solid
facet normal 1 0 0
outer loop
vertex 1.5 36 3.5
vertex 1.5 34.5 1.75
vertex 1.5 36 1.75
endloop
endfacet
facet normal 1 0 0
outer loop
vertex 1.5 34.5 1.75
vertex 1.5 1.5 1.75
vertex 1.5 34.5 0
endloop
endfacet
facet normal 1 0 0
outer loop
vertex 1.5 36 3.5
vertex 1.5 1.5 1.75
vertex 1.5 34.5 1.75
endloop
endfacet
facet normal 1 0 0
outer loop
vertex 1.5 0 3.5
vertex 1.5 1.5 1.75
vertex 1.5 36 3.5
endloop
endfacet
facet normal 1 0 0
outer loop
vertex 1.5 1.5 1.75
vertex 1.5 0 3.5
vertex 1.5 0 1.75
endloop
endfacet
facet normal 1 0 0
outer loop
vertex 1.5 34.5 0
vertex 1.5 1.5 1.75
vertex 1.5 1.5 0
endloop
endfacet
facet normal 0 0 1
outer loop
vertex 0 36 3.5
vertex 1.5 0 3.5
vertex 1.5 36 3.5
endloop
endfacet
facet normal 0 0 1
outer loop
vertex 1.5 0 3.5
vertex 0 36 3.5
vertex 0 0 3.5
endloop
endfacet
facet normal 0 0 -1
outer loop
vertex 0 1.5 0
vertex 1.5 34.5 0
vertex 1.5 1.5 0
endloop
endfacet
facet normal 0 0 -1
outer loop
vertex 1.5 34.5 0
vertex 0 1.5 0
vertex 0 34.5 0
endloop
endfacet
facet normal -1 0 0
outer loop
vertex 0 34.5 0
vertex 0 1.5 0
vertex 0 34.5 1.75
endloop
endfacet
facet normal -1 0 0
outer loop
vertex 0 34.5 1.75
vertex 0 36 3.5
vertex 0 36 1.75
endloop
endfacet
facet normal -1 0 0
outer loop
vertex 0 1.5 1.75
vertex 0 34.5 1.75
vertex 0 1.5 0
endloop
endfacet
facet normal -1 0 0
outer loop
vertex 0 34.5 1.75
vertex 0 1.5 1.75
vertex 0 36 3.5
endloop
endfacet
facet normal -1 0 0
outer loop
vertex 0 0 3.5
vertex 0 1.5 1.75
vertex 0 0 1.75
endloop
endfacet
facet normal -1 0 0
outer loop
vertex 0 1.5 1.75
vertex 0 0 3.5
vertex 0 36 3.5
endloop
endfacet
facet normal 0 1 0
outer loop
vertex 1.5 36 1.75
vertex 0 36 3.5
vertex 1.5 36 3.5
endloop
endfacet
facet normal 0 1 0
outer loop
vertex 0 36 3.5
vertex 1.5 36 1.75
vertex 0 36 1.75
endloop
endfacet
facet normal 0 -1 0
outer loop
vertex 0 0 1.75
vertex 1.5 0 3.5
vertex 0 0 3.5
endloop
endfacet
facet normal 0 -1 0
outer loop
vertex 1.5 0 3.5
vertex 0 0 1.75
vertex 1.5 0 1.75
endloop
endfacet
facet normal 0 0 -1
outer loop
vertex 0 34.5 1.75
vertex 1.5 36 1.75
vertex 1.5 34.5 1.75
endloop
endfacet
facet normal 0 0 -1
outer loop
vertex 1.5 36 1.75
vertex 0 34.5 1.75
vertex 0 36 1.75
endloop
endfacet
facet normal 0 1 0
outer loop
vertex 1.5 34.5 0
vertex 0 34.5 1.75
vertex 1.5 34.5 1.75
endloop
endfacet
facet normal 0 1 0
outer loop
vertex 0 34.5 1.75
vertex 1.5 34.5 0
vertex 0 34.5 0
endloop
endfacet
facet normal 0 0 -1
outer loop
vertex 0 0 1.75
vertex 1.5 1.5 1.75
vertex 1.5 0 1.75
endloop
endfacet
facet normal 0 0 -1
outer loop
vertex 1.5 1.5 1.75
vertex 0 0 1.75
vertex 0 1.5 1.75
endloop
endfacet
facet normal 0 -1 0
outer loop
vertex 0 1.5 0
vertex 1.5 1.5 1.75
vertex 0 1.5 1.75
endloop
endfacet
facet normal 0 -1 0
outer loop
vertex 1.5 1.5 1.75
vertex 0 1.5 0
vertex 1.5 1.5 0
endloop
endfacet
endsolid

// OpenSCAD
// file: ../config.scad
// height of desktop and shelves
desktop_shelf_color="Sienna";
desktop_height=31;
desktop_thickness=1;
table_width=96;
table_depth=36;
shelf_thickness=0.5;
shelf_height=10;
top_shelf_height=72.5;

// Legs
leg_color="BurlyWood";
front_leg_length=desktop_height;
rear_leg_length=top_shelf_height-shelf_thickness;
leg_timber_width=1.5;
leg_timber_depth=3.5;
center_leg_timber_width=1.5;
center_leg_timber_depth=3.5;
center_leg_setback=24;

// Plates
front_rear_strut_color="silver";
side_strut_color="blue";
strut_timber_depth=1.5;
strut_timber_height=3.5;
top_shelf_timber_depth=1.5;
top_shelf_timber_height=3.5;
// file: ../components/desktop_support.scad
module desktop_support()
{
    include <../config.scad>
    render() { // see note in README about rendering
        difference() {
            cube([strut_timber_depth,table_depth,strut_timber_height],false);

            // Rear cutout
            translate([0,table_depth-strut_timber_depth,0]){
                cube([strut_timber_depth,strut_timber_depth,strut_timber_height/2]);
            }
            // Front cutout
            cube([strut_timber_depth,strut_timber_depth,strut_timber_height/2]);
        }
    }
}
// main file
use <../components/desktop_support.scad>

desktop_support();
